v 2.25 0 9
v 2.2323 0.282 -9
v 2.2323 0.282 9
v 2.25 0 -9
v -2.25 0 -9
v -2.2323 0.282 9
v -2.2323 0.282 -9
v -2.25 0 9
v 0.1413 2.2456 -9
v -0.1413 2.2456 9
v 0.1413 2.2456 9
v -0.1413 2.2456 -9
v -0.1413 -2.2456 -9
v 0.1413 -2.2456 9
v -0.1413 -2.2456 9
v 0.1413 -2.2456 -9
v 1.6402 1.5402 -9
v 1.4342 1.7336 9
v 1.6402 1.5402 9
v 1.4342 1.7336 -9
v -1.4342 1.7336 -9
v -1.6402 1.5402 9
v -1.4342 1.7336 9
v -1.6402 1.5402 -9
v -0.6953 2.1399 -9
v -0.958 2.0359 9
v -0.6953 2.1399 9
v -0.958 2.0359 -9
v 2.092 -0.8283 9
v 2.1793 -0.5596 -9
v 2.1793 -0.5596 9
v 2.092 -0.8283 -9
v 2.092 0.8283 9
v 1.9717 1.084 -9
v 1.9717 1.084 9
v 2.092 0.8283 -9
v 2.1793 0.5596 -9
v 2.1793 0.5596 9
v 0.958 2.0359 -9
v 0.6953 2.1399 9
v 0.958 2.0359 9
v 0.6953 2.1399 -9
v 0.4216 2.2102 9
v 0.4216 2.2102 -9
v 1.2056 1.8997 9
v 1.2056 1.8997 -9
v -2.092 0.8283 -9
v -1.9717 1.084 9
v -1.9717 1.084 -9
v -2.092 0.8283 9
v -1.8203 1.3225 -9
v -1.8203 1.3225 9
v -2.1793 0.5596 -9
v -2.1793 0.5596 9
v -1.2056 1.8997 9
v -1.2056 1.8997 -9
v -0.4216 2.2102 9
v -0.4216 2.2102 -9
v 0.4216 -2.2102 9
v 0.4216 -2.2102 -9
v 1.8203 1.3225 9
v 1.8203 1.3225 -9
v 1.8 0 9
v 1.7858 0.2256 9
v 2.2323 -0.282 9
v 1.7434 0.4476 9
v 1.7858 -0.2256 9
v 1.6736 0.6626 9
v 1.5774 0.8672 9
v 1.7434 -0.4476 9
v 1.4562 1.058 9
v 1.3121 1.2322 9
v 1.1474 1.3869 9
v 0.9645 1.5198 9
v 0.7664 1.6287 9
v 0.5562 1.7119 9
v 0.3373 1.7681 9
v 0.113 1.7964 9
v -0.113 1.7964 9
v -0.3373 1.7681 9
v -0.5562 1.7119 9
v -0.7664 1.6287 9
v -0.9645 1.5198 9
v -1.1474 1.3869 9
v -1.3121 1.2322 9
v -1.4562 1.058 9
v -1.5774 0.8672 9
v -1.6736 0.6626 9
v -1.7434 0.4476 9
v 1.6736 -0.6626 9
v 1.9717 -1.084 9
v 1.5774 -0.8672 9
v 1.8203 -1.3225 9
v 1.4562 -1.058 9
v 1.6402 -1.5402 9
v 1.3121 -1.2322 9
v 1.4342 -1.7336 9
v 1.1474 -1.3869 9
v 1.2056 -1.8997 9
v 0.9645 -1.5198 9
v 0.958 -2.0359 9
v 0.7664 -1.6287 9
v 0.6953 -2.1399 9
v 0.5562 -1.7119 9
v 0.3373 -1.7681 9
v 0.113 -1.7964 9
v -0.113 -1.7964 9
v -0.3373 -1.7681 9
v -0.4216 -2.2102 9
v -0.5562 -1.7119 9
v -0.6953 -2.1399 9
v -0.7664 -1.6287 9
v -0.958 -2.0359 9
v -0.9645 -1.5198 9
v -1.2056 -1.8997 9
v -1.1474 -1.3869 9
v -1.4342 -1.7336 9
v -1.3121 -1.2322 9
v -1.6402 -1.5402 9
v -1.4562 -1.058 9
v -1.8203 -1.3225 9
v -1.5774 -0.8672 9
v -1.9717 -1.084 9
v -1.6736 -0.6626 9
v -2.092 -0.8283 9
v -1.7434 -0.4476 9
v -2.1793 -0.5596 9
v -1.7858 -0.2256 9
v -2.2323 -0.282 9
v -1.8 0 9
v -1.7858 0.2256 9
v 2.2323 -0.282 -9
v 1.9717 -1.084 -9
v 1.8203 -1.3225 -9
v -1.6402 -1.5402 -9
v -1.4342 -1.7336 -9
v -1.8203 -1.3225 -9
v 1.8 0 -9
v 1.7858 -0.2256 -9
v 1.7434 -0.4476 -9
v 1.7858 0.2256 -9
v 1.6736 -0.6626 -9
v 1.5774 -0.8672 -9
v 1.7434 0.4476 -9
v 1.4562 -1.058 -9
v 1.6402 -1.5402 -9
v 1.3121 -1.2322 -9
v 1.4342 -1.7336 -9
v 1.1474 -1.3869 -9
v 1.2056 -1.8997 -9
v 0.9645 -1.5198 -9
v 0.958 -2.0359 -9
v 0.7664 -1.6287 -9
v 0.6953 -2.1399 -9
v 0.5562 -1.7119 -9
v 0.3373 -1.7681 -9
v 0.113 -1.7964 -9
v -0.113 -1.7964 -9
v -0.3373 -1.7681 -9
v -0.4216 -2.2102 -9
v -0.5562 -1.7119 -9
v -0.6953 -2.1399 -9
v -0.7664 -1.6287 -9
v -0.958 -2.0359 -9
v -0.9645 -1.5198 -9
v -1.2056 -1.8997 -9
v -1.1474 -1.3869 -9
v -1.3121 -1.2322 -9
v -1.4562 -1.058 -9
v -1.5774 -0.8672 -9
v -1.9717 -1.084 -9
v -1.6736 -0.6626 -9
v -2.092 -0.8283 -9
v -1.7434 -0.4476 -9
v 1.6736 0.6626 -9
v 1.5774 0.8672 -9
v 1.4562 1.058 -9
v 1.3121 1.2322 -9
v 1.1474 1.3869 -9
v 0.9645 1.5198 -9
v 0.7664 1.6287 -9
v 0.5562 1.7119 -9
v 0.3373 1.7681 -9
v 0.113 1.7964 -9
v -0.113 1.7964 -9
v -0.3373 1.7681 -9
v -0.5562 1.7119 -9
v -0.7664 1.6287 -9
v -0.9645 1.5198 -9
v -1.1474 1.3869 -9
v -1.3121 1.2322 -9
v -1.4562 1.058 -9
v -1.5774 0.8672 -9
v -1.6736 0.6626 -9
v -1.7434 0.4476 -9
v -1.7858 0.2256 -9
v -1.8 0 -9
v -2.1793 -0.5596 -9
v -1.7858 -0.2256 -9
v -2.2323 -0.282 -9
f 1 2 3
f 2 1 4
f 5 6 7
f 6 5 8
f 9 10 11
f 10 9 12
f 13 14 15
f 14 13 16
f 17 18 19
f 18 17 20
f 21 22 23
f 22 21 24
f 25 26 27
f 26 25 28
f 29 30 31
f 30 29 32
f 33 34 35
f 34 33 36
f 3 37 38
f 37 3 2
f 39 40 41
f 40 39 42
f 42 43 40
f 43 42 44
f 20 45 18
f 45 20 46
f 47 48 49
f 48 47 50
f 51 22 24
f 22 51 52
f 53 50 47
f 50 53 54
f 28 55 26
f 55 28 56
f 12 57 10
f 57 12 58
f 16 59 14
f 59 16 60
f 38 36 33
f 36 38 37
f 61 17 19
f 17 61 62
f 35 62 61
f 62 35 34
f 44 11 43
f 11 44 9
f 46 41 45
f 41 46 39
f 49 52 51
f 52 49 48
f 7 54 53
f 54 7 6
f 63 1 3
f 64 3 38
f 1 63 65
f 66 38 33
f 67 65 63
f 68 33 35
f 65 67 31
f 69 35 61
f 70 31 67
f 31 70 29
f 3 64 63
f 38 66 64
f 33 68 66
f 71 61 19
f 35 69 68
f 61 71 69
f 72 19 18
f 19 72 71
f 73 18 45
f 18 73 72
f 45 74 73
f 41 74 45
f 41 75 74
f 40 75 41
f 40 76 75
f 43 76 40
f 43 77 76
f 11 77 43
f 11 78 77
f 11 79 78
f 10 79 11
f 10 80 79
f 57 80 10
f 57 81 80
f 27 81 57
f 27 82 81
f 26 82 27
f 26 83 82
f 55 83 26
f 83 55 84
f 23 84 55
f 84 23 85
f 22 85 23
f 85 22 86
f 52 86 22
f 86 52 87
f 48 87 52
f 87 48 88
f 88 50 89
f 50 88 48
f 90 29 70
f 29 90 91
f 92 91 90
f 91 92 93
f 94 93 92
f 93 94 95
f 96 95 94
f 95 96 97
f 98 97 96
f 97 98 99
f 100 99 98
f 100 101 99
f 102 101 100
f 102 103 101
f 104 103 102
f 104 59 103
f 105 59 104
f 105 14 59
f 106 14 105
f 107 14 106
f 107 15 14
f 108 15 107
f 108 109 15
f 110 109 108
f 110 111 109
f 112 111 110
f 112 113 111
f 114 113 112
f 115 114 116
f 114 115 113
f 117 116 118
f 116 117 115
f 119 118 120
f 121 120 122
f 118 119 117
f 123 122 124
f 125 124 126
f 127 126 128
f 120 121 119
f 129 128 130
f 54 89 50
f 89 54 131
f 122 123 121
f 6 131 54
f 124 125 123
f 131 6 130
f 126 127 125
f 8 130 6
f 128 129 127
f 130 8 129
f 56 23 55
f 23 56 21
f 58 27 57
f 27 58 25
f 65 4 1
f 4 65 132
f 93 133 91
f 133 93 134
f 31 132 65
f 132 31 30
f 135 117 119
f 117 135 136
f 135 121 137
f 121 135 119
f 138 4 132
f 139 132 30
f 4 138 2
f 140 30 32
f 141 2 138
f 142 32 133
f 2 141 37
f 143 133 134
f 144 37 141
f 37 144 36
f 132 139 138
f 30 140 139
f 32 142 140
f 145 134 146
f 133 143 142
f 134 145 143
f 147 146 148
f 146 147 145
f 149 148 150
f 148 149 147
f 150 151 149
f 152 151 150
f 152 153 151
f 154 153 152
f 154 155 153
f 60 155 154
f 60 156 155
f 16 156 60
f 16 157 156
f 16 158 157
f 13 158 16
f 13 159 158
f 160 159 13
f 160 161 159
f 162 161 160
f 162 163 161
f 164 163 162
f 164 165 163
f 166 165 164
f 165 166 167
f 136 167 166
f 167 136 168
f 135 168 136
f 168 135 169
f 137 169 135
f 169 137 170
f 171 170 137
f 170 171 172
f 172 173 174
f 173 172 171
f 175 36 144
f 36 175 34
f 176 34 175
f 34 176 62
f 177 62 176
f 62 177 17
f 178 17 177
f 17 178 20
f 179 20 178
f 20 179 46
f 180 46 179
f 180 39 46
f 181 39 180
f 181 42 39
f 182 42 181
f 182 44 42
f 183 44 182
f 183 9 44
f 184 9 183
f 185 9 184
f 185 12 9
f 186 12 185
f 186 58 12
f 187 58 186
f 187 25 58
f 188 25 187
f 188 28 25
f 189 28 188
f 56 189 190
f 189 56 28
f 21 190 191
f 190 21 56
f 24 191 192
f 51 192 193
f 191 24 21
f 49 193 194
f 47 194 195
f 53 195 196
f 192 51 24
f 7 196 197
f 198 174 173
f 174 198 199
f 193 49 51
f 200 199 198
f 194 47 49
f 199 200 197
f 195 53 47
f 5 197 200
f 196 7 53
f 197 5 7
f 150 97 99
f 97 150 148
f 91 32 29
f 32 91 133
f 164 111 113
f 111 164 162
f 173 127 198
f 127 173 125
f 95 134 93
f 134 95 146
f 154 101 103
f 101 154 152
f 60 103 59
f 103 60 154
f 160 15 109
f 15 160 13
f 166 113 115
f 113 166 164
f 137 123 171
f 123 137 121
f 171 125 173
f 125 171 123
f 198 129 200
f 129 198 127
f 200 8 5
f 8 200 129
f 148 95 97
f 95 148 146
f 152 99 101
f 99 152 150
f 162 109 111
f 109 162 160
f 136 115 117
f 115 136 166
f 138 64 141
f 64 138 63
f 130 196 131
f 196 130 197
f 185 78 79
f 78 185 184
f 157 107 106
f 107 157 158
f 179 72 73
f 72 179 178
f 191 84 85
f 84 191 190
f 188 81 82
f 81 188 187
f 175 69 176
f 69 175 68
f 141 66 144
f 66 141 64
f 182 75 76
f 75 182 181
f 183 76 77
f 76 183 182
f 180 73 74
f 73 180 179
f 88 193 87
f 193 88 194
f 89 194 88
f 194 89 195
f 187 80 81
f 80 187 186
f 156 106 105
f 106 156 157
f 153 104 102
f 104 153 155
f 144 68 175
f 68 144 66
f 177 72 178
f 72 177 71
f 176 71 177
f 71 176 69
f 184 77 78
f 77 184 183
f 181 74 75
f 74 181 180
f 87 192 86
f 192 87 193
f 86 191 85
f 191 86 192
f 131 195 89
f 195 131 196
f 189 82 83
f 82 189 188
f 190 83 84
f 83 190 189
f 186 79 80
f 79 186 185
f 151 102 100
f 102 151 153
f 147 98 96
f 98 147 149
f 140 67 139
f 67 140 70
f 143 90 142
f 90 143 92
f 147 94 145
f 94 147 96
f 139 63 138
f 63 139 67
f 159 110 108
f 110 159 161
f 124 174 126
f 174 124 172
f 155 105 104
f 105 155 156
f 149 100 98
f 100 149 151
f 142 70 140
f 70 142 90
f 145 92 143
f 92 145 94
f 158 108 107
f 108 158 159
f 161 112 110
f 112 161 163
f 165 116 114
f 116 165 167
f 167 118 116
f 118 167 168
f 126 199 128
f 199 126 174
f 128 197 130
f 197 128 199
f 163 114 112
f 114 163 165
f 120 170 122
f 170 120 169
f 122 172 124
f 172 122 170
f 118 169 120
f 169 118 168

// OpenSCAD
$fn = 50;


difference() {
	union() {
		translate(v = [0, 0, -9.0000000000]) {
			cylinder(h = 18, r = 2.2500000000);
		}
	}
	union() {
		translate(v = [0, 0, -100.0000000000]) {
			cylinder(h = 200, r = 1.8000000000);
		}
	}
}
